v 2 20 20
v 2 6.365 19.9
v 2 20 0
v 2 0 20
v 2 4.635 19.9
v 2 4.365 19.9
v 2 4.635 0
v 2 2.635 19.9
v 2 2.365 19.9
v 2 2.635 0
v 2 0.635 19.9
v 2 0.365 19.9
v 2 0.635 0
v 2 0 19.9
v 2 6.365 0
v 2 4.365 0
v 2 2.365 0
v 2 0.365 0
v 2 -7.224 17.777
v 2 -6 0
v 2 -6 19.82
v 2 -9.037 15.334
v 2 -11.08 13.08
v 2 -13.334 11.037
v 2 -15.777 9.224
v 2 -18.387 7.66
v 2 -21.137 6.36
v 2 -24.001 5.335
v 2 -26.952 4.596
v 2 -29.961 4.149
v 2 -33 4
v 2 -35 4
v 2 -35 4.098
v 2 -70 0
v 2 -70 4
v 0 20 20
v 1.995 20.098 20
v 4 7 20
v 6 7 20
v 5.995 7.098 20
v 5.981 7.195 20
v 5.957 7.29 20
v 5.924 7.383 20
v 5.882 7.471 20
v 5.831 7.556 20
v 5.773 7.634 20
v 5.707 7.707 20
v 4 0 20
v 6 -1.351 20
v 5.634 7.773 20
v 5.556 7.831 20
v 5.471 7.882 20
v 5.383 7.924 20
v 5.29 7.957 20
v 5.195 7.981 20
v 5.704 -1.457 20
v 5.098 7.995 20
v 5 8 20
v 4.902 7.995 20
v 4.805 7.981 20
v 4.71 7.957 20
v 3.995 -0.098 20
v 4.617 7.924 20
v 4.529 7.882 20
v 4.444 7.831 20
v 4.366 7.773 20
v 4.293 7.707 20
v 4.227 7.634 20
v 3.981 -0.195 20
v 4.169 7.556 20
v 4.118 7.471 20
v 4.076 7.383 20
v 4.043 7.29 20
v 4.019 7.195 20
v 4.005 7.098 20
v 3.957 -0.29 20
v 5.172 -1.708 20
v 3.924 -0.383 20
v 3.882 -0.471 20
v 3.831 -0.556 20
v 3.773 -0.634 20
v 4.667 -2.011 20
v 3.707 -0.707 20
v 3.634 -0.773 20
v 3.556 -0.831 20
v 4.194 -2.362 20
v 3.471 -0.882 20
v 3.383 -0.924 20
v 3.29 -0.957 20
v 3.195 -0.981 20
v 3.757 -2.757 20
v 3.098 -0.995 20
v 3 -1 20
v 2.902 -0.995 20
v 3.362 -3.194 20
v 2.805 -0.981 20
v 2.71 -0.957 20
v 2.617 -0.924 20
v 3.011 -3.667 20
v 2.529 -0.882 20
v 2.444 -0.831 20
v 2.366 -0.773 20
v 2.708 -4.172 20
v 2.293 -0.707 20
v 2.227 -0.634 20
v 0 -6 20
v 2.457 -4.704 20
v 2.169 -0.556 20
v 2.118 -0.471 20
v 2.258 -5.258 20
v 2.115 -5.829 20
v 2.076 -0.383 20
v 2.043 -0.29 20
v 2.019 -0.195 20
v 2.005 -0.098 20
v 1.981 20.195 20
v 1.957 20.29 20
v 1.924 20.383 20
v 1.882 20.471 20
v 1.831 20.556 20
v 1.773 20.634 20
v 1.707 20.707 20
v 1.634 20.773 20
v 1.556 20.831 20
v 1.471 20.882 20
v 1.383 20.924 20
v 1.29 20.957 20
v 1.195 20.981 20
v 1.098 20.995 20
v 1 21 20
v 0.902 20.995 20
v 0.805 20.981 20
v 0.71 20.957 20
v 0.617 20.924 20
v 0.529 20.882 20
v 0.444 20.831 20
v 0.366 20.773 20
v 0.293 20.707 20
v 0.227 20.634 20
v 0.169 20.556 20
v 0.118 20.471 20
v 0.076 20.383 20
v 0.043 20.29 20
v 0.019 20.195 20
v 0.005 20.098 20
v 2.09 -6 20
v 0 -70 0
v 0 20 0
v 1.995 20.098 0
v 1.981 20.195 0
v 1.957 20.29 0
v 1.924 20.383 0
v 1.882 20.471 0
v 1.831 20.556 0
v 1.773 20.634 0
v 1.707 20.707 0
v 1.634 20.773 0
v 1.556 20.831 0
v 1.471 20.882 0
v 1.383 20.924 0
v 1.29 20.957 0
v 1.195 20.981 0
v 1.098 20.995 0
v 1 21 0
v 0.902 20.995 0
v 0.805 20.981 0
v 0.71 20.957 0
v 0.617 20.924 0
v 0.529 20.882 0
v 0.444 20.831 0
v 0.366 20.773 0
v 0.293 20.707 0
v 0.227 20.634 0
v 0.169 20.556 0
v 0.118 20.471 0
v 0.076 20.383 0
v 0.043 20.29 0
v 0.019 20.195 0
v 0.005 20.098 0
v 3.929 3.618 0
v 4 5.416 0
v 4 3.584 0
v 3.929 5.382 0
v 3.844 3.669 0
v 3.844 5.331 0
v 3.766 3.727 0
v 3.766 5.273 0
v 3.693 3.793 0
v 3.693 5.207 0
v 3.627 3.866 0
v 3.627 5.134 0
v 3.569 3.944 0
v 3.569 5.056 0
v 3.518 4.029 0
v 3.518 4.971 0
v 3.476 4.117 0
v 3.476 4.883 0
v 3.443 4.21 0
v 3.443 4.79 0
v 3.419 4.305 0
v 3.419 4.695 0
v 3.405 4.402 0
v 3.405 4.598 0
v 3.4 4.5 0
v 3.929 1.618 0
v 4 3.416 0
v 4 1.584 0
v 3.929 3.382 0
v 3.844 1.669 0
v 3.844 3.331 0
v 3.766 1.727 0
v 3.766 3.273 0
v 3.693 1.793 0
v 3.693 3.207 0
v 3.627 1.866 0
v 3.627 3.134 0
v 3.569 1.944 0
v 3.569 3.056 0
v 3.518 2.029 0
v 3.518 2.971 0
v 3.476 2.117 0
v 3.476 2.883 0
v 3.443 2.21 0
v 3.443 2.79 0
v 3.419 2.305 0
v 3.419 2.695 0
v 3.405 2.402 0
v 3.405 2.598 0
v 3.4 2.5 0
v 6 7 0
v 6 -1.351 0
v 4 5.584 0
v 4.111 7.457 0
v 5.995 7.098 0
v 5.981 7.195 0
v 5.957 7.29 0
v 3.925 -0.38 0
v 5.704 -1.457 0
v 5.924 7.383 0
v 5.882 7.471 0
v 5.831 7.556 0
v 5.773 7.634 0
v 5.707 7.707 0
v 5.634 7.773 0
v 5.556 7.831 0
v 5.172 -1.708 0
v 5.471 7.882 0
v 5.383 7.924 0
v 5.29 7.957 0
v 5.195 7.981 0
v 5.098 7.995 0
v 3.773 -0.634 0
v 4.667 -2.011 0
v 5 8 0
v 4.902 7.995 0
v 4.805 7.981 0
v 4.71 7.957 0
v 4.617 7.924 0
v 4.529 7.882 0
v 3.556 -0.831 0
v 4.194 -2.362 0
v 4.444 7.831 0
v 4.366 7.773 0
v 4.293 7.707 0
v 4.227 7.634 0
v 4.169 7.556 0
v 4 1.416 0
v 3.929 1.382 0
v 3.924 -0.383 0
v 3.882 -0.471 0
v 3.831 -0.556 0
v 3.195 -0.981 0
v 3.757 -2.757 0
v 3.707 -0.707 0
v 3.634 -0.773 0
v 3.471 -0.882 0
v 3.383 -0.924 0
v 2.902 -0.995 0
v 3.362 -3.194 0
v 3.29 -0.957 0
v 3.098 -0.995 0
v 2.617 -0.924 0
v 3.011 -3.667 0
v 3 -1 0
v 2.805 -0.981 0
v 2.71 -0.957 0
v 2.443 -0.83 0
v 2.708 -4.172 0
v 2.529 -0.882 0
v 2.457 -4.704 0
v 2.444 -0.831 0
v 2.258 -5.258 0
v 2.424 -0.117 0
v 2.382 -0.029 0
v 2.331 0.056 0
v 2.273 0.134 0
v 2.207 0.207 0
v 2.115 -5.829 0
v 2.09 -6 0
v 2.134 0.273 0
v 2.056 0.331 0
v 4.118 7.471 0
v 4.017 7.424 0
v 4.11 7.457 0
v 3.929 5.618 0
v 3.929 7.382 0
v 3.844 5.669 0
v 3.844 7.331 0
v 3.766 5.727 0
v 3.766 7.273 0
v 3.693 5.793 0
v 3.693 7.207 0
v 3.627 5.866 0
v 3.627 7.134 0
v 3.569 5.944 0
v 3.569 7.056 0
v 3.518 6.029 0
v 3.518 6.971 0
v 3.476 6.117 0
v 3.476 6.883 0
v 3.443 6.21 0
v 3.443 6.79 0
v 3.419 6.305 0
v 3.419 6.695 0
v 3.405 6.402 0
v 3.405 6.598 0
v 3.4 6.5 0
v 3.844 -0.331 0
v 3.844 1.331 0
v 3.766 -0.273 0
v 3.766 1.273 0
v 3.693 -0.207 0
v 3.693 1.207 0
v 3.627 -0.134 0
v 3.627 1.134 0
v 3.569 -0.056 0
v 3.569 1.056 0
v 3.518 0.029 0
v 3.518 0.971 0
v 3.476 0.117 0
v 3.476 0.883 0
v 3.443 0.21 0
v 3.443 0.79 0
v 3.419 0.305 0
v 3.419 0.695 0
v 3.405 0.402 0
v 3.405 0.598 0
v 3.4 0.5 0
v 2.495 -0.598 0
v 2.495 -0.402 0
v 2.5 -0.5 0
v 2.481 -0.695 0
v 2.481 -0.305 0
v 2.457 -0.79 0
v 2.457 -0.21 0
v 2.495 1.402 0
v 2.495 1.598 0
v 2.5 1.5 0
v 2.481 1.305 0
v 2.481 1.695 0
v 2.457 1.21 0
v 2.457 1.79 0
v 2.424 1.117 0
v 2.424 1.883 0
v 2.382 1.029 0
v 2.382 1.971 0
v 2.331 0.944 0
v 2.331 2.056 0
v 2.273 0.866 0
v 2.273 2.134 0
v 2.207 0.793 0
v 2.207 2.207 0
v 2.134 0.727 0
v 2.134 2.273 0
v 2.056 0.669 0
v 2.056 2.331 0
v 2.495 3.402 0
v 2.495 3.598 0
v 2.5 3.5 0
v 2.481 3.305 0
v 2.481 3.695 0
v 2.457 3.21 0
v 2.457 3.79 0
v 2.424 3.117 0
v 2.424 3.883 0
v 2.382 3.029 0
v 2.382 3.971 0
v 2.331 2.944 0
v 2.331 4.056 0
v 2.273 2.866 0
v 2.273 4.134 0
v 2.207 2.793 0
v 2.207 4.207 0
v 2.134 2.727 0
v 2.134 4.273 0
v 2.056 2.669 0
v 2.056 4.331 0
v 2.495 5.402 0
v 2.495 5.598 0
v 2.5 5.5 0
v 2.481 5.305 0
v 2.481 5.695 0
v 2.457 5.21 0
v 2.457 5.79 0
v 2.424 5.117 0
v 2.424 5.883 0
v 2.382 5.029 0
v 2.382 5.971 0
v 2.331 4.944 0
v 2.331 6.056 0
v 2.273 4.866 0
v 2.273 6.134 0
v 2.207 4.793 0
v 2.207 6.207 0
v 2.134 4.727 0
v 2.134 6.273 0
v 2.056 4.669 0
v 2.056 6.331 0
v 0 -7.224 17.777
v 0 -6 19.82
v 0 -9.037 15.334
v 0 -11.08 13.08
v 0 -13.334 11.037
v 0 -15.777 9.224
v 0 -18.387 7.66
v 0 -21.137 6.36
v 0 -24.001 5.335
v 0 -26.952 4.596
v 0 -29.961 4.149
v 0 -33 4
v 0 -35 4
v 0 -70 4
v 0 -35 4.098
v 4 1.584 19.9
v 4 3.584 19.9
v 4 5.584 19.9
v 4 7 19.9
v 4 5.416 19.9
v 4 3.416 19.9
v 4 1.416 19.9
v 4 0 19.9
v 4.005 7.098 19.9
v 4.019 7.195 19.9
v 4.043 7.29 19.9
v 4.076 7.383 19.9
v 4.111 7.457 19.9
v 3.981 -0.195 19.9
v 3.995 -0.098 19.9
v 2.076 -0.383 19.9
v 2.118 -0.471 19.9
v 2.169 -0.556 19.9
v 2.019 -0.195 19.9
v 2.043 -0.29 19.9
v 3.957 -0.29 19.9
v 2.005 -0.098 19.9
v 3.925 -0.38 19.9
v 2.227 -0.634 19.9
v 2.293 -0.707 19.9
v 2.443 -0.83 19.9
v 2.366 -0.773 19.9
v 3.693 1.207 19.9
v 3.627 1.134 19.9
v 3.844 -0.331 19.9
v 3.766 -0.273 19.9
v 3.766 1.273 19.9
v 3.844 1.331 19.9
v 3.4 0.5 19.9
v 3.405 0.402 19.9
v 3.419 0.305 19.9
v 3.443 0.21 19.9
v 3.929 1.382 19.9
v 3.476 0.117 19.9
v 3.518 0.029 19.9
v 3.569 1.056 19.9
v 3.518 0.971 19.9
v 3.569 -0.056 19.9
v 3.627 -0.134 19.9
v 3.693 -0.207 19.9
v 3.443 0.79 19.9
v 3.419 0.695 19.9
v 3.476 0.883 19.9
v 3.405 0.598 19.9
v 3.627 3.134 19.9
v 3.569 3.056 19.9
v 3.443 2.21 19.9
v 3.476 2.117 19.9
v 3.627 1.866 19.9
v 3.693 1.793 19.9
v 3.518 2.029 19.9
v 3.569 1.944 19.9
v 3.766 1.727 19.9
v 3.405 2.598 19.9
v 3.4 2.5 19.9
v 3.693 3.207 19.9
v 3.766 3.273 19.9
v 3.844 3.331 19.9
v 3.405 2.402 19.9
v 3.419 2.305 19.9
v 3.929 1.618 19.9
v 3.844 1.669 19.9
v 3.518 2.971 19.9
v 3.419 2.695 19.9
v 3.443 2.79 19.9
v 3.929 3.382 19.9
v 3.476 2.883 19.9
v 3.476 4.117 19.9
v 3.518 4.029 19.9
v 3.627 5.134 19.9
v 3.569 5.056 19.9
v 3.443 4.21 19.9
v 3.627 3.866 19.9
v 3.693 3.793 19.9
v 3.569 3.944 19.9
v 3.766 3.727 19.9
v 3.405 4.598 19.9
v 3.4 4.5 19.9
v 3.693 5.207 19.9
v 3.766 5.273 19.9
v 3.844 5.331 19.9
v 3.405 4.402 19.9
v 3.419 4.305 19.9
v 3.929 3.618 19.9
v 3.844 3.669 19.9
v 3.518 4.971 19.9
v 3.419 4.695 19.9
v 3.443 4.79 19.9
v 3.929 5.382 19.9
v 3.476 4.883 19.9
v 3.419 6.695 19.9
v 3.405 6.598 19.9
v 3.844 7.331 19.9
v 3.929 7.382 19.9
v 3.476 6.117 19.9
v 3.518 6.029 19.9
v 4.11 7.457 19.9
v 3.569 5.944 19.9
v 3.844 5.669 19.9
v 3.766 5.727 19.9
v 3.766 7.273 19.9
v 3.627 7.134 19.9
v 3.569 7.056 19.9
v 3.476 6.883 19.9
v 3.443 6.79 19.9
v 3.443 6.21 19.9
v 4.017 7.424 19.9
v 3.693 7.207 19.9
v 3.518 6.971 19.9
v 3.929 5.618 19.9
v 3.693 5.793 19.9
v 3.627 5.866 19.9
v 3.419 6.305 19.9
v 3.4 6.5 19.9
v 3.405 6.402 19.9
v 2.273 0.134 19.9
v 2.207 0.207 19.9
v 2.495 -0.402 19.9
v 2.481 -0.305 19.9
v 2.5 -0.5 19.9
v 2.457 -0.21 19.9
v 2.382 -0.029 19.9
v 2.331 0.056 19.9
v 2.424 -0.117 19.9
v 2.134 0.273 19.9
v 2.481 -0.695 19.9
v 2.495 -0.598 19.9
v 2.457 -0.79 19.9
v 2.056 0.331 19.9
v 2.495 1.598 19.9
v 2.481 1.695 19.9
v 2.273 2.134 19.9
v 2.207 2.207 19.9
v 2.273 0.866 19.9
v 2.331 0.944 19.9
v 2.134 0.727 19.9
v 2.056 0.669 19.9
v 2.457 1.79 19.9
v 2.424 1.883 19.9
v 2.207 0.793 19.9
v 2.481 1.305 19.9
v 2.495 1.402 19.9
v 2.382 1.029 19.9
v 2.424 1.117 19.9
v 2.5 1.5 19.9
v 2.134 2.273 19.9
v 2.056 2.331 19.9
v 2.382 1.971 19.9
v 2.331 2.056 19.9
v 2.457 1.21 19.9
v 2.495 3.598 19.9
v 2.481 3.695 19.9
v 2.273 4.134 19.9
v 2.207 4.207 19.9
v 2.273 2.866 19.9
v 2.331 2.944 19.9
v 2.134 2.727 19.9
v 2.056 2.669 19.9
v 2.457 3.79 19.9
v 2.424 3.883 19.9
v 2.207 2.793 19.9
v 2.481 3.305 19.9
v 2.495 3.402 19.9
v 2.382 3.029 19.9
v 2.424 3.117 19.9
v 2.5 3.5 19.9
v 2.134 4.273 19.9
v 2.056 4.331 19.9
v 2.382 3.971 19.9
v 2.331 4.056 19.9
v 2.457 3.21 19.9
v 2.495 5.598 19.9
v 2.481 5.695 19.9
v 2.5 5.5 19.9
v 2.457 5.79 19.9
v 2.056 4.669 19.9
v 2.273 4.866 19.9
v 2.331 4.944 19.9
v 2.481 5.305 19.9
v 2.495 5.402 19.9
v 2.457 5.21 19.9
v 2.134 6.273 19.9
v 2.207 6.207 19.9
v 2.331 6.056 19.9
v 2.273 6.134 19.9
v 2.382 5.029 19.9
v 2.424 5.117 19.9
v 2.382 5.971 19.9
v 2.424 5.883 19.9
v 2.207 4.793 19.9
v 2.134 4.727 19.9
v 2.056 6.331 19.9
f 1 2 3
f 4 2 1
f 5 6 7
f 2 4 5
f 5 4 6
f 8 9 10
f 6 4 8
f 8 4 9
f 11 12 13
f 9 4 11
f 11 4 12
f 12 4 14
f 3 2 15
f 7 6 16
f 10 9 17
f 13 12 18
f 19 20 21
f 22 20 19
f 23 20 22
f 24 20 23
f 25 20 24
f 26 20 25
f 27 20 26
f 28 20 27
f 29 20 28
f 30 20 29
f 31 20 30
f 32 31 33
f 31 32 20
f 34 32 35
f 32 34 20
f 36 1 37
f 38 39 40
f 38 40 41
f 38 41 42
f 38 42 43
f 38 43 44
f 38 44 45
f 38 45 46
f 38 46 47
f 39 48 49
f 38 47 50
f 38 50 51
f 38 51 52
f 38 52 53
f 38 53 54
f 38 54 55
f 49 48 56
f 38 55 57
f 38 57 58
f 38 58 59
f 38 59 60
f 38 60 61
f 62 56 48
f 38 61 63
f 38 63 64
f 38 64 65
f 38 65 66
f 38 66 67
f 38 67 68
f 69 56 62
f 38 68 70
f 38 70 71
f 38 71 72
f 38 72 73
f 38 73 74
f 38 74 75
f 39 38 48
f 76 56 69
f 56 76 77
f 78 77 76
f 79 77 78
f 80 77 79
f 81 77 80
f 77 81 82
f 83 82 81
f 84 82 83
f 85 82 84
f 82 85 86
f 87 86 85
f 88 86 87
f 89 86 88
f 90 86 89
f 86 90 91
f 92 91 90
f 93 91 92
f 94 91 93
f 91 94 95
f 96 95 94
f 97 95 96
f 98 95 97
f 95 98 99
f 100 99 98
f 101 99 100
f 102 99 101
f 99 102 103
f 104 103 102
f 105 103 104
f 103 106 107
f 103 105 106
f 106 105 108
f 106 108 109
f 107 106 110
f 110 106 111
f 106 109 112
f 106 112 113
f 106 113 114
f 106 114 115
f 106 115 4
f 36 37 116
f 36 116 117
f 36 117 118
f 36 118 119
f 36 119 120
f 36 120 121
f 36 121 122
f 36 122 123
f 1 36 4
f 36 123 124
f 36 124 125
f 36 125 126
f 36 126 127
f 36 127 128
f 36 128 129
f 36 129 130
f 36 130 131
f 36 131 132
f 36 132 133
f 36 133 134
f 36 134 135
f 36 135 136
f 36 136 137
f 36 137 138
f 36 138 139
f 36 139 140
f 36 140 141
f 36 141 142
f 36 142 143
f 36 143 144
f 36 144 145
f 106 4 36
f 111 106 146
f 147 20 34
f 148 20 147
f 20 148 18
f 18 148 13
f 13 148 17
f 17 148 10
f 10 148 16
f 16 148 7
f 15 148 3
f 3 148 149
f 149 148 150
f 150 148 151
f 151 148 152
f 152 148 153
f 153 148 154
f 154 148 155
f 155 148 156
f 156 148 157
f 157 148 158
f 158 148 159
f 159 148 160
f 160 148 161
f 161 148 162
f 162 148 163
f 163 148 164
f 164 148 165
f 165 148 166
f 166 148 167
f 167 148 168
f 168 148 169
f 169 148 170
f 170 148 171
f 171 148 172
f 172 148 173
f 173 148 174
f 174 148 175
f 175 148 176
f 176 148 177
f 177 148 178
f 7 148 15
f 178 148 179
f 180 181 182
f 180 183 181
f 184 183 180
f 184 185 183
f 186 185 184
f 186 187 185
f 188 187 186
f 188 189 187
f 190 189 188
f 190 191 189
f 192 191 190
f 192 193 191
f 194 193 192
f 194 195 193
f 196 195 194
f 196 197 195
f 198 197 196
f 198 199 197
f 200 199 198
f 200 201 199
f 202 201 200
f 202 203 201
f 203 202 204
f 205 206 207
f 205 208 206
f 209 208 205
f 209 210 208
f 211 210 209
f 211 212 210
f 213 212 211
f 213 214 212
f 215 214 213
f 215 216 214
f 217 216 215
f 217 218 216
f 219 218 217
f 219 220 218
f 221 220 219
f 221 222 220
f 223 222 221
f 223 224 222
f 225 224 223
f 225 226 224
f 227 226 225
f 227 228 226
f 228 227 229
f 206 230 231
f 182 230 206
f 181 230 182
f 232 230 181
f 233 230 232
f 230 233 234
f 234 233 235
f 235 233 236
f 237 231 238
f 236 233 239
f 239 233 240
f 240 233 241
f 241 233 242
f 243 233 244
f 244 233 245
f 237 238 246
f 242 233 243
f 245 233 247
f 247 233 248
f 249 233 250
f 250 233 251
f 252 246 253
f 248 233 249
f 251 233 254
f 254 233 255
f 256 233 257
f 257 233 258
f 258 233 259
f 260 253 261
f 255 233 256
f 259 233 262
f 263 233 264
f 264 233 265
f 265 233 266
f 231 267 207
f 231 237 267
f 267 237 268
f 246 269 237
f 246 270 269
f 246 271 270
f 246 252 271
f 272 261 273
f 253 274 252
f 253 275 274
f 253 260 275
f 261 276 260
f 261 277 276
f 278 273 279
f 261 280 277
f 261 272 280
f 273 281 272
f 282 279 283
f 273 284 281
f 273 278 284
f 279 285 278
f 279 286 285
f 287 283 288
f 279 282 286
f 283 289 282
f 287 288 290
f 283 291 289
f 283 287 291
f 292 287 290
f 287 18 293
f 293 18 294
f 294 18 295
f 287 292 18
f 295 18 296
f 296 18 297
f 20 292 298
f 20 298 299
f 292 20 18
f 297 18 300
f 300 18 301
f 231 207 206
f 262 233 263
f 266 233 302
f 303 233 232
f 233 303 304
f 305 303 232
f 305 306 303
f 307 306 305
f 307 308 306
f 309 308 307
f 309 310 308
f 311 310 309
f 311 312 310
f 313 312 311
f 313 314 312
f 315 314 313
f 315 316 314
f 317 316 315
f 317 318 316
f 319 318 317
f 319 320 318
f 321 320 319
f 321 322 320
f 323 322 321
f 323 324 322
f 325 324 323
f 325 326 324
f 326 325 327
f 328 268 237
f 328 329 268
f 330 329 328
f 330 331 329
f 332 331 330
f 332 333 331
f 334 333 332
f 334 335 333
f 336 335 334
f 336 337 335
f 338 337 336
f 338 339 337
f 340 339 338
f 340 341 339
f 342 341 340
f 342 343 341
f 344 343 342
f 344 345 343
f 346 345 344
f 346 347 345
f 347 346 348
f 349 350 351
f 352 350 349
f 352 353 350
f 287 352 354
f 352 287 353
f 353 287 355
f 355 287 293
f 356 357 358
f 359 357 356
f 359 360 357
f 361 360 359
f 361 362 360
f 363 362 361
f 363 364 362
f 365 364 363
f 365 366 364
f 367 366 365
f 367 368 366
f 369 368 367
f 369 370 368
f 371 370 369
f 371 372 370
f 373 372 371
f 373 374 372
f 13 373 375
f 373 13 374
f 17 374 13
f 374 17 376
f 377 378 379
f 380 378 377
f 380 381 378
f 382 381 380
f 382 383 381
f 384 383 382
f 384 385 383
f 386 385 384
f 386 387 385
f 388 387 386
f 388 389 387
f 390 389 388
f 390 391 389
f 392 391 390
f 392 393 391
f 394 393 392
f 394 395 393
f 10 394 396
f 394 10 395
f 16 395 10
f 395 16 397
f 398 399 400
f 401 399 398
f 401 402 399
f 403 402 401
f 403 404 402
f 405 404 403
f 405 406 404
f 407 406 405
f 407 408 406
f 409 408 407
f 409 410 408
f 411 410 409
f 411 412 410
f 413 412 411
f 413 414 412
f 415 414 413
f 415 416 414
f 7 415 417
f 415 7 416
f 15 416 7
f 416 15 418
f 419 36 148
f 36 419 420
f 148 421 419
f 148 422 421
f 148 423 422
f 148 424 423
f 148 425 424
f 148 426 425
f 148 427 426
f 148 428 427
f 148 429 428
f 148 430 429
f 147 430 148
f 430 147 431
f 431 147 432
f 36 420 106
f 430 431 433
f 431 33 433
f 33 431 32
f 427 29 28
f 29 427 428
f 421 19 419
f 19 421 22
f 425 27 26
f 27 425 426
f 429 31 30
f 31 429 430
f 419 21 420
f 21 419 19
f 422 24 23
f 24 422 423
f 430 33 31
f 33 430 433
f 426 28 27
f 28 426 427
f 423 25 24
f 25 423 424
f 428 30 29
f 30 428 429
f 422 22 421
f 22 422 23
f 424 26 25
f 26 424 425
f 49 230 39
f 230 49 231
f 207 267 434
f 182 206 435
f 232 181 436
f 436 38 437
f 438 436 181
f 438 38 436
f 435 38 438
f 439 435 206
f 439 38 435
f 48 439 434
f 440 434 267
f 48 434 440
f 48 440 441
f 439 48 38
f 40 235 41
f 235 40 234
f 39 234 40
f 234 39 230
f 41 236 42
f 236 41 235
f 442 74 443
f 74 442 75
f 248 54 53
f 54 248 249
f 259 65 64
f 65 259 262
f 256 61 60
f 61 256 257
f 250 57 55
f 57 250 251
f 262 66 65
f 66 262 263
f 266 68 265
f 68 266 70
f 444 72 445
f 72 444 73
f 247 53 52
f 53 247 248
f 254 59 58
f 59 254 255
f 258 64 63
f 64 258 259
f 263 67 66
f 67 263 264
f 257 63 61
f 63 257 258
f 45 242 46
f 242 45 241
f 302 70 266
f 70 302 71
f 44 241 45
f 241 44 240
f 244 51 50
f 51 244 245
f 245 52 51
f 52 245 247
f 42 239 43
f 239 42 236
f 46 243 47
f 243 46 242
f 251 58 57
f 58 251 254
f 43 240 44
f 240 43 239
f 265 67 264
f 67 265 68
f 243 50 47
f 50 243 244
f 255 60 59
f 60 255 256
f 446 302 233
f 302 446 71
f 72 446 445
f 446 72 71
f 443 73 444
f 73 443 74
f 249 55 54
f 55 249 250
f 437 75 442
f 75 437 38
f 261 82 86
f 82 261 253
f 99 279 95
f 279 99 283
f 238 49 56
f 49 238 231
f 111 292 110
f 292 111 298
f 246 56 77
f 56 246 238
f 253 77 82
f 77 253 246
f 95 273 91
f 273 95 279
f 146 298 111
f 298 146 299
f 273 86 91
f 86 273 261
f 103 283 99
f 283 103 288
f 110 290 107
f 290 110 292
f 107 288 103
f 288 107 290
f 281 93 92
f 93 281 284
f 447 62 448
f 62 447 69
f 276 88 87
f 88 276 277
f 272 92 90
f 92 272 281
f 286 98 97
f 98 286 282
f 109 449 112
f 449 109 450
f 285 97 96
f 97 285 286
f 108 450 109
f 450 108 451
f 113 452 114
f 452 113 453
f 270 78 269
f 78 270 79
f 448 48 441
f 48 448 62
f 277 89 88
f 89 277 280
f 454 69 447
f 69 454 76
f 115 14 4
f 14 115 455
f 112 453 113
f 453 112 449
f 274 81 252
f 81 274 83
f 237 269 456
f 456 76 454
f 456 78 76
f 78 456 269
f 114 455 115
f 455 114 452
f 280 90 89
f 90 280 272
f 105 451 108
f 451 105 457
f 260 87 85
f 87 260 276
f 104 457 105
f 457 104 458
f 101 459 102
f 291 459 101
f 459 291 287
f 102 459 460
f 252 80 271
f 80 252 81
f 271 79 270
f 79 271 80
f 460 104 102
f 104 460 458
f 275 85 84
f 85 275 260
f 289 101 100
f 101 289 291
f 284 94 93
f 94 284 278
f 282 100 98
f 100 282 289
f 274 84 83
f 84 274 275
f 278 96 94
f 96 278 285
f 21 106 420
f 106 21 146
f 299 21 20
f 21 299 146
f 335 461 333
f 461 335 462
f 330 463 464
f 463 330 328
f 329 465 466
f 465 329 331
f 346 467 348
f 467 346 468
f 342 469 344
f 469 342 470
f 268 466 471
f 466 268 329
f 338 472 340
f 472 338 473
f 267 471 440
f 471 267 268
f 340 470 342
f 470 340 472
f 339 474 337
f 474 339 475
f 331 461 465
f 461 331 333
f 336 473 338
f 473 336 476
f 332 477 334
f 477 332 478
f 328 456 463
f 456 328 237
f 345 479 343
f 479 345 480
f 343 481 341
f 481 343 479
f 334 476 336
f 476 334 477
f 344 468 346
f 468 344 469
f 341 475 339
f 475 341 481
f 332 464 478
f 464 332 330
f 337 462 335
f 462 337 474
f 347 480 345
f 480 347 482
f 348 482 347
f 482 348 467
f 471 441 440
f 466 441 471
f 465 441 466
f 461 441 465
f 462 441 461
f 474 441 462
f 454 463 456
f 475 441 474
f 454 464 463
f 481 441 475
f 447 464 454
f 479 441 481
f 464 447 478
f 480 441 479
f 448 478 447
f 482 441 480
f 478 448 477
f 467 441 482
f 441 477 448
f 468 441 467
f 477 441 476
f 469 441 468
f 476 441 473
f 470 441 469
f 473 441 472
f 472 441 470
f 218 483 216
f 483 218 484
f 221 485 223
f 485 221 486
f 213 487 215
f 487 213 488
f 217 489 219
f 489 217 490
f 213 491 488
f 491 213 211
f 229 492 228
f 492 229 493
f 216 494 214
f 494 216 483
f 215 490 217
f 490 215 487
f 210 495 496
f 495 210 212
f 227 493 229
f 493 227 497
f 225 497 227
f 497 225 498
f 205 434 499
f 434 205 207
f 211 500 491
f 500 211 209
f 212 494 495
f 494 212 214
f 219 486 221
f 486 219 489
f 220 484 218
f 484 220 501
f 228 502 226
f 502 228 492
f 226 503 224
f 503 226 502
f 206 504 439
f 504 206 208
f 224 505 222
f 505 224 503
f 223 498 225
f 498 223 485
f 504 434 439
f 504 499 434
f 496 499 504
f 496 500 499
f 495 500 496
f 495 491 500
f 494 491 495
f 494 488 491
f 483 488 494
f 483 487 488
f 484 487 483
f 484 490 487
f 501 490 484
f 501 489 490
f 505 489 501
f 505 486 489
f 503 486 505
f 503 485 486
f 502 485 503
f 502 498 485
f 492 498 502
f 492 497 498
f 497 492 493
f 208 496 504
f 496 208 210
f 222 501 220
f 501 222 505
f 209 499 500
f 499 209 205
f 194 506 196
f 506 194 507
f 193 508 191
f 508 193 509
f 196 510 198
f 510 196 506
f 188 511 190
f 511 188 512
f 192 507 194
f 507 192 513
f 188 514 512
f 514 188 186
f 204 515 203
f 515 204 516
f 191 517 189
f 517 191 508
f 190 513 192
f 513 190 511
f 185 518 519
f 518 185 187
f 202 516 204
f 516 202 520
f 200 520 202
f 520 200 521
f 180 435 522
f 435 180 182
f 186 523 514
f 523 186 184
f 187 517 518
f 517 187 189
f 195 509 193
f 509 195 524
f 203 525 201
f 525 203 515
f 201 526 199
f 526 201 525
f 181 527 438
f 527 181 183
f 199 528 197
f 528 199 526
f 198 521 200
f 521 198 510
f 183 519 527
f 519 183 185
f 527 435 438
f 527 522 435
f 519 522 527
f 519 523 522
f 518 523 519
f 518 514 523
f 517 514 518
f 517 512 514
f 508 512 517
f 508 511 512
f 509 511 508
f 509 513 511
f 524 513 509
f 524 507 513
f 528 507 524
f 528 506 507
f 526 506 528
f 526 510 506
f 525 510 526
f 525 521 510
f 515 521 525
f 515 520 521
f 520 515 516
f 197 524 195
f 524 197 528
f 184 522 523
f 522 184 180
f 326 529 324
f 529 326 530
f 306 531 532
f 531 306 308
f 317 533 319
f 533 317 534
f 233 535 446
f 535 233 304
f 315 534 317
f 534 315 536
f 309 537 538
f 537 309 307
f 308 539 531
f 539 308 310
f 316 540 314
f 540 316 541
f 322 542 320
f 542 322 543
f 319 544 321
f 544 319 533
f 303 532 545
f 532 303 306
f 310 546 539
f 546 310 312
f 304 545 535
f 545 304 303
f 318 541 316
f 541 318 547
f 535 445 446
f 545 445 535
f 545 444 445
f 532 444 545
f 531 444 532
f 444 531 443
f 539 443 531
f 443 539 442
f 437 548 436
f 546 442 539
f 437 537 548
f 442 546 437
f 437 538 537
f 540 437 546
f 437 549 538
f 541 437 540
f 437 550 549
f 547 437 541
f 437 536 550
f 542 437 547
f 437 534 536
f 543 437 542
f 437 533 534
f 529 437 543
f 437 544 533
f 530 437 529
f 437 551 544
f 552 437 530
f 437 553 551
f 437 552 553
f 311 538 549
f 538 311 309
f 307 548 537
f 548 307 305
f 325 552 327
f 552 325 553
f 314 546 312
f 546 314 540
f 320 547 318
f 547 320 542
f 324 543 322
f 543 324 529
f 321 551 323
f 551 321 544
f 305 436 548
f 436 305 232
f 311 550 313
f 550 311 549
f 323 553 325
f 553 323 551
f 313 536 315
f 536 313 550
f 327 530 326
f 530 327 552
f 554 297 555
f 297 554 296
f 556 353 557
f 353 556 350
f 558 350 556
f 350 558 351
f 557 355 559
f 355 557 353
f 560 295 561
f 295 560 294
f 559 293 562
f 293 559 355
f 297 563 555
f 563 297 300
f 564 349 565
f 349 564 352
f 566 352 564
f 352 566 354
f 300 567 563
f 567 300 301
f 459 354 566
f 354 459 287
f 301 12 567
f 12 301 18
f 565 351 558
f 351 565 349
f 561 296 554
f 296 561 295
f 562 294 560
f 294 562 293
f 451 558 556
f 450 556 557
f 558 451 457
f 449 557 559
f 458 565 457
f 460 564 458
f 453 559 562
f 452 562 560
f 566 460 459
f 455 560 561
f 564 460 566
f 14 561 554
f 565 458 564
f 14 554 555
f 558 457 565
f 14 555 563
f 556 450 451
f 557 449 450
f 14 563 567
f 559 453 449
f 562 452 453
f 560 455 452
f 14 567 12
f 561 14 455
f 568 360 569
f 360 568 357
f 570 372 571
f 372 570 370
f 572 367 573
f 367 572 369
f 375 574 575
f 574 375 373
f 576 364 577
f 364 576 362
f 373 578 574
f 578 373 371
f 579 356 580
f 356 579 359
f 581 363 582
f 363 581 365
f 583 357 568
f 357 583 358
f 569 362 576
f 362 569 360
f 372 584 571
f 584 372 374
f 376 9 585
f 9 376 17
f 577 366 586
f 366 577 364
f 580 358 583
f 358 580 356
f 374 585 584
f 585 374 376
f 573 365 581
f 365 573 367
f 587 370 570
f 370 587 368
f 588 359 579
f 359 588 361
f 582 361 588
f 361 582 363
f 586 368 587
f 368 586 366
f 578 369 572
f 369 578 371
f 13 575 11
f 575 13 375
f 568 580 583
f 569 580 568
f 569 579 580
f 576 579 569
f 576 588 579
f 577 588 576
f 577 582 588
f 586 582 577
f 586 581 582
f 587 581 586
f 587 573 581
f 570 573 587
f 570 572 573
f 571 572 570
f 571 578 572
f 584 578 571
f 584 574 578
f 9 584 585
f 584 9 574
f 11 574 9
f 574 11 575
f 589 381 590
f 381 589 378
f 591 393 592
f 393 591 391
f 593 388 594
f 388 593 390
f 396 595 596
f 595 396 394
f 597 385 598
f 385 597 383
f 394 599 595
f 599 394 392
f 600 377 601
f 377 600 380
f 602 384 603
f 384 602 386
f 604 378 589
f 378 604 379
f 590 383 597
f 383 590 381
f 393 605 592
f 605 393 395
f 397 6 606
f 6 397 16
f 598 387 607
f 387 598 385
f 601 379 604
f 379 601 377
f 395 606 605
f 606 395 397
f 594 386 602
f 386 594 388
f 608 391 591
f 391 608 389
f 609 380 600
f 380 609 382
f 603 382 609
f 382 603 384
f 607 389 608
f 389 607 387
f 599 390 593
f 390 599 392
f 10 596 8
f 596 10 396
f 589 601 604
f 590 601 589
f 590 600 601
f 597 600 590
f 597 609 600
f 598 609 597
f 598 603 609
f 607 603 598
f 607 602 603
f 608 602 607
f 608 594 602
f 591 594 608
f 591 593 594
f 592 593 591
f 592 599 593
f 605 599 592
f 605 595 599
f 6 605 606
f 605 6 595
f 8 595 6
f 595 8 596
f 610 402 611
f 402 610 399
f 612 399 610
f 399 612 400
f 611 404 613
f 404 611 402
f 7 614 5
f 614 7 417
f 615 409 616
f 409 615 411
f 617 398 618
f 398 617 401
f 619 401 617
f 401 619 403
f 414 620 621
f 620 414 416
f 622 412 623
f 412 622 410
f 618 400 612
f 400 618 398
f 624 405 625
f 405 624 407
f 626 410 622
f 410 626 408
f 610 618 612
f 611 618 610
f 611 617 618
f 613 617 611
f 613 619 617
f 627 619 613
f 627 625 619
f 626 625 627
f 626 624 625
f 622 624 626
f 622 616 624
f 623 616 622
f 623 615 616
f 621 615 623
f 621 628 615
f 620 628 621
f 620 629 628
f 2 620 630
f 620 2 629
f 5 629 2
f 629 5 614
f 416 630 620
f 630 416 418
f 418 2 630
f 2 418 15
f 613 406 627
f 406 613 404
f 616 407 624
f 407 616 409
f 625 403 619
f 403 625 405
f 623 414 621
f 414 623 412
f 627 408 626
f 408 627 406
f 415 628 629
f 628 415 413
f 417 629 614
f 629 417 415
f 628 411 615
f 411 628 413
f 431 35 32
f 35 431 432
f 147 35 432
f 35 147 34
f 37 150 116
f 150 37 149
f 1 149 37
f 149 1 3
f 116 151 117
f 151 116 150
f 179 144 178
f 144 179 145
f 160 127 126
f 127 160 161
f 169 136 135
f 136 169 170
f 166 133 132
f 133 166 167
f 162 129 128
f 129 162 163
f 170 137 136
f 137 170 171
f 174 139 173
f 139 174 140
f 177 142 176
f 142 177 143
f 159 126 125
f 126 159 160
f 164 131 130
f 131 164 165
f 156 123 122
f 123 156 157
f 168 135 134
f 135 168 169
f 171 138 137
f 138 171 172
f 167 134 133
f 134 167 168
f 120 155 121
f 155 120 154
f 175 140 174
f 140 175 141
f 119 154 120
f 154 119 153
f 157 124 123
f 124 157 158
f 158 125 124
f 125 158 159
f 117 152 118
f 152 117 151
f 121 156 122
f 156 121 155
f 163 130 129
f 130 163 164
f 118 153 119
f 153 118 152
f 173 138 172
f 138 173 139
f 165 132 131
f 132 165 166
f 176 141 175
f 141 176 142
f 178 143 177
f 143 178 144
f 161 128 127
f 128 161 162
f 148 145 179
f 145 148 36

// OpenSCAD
// VHS-cleaning: Gripper for flat folded PEC pad
//                to wipe top and bottom edges
//                of tape.
// Repo: https://github.com/hornc/VHS-cleaning
// Author: hornc, 2026
// Version: v0.1
// License: CC BY-SA 4.0

$fn = 64;
handle = 35;
thickness = 2;
h = 20;


// Base + handle
difference() {
    translate([0, -handle, 0])
        cube([thickness, 20+handle, h]);
    translate([0, -33, 35])
        rotate([0, 90, 0])
            cylinder(8, d=62, center=true);
}

// Extend handle
translate([0, 2*-handle, 0])
    cube([thickness, 40, 4]);

// Rounded tip
translate([thickness/2, 20, 0])
    cylinder(h, d=thickness);

// Gripper thumb
translate([4,0,0]){
    cube([thickness, 7, h]);
    translate([thickness/2, 7, 0])
        cylinder(h, d=thickness);
}

// Gripper basal joint
translate([0, -3*thickness, 0]) {
    difference(){
        cube([thickness*3, thickness*3, h]);
        group(){
            translate([4*thickness, -1, -1]){
                cylinder(h*1.4, d=6*thickness);
            translate([-5, 7, 0])
                cylinder(h*2, d=thickness);
            }
        }
    }
}

// Gripper texture
module gripper_texture() {
    color("brown")
    for (i = [0 : 3]) {
        translate([0, i * thickness, 0])
            cylinder(h - 0.1, d=thickness);
    }
}

translate([thickness*2.2, 0.5, 0])
    gripper_texture();

translate([1.5, -0.5, 0])
    gripper_texture();
